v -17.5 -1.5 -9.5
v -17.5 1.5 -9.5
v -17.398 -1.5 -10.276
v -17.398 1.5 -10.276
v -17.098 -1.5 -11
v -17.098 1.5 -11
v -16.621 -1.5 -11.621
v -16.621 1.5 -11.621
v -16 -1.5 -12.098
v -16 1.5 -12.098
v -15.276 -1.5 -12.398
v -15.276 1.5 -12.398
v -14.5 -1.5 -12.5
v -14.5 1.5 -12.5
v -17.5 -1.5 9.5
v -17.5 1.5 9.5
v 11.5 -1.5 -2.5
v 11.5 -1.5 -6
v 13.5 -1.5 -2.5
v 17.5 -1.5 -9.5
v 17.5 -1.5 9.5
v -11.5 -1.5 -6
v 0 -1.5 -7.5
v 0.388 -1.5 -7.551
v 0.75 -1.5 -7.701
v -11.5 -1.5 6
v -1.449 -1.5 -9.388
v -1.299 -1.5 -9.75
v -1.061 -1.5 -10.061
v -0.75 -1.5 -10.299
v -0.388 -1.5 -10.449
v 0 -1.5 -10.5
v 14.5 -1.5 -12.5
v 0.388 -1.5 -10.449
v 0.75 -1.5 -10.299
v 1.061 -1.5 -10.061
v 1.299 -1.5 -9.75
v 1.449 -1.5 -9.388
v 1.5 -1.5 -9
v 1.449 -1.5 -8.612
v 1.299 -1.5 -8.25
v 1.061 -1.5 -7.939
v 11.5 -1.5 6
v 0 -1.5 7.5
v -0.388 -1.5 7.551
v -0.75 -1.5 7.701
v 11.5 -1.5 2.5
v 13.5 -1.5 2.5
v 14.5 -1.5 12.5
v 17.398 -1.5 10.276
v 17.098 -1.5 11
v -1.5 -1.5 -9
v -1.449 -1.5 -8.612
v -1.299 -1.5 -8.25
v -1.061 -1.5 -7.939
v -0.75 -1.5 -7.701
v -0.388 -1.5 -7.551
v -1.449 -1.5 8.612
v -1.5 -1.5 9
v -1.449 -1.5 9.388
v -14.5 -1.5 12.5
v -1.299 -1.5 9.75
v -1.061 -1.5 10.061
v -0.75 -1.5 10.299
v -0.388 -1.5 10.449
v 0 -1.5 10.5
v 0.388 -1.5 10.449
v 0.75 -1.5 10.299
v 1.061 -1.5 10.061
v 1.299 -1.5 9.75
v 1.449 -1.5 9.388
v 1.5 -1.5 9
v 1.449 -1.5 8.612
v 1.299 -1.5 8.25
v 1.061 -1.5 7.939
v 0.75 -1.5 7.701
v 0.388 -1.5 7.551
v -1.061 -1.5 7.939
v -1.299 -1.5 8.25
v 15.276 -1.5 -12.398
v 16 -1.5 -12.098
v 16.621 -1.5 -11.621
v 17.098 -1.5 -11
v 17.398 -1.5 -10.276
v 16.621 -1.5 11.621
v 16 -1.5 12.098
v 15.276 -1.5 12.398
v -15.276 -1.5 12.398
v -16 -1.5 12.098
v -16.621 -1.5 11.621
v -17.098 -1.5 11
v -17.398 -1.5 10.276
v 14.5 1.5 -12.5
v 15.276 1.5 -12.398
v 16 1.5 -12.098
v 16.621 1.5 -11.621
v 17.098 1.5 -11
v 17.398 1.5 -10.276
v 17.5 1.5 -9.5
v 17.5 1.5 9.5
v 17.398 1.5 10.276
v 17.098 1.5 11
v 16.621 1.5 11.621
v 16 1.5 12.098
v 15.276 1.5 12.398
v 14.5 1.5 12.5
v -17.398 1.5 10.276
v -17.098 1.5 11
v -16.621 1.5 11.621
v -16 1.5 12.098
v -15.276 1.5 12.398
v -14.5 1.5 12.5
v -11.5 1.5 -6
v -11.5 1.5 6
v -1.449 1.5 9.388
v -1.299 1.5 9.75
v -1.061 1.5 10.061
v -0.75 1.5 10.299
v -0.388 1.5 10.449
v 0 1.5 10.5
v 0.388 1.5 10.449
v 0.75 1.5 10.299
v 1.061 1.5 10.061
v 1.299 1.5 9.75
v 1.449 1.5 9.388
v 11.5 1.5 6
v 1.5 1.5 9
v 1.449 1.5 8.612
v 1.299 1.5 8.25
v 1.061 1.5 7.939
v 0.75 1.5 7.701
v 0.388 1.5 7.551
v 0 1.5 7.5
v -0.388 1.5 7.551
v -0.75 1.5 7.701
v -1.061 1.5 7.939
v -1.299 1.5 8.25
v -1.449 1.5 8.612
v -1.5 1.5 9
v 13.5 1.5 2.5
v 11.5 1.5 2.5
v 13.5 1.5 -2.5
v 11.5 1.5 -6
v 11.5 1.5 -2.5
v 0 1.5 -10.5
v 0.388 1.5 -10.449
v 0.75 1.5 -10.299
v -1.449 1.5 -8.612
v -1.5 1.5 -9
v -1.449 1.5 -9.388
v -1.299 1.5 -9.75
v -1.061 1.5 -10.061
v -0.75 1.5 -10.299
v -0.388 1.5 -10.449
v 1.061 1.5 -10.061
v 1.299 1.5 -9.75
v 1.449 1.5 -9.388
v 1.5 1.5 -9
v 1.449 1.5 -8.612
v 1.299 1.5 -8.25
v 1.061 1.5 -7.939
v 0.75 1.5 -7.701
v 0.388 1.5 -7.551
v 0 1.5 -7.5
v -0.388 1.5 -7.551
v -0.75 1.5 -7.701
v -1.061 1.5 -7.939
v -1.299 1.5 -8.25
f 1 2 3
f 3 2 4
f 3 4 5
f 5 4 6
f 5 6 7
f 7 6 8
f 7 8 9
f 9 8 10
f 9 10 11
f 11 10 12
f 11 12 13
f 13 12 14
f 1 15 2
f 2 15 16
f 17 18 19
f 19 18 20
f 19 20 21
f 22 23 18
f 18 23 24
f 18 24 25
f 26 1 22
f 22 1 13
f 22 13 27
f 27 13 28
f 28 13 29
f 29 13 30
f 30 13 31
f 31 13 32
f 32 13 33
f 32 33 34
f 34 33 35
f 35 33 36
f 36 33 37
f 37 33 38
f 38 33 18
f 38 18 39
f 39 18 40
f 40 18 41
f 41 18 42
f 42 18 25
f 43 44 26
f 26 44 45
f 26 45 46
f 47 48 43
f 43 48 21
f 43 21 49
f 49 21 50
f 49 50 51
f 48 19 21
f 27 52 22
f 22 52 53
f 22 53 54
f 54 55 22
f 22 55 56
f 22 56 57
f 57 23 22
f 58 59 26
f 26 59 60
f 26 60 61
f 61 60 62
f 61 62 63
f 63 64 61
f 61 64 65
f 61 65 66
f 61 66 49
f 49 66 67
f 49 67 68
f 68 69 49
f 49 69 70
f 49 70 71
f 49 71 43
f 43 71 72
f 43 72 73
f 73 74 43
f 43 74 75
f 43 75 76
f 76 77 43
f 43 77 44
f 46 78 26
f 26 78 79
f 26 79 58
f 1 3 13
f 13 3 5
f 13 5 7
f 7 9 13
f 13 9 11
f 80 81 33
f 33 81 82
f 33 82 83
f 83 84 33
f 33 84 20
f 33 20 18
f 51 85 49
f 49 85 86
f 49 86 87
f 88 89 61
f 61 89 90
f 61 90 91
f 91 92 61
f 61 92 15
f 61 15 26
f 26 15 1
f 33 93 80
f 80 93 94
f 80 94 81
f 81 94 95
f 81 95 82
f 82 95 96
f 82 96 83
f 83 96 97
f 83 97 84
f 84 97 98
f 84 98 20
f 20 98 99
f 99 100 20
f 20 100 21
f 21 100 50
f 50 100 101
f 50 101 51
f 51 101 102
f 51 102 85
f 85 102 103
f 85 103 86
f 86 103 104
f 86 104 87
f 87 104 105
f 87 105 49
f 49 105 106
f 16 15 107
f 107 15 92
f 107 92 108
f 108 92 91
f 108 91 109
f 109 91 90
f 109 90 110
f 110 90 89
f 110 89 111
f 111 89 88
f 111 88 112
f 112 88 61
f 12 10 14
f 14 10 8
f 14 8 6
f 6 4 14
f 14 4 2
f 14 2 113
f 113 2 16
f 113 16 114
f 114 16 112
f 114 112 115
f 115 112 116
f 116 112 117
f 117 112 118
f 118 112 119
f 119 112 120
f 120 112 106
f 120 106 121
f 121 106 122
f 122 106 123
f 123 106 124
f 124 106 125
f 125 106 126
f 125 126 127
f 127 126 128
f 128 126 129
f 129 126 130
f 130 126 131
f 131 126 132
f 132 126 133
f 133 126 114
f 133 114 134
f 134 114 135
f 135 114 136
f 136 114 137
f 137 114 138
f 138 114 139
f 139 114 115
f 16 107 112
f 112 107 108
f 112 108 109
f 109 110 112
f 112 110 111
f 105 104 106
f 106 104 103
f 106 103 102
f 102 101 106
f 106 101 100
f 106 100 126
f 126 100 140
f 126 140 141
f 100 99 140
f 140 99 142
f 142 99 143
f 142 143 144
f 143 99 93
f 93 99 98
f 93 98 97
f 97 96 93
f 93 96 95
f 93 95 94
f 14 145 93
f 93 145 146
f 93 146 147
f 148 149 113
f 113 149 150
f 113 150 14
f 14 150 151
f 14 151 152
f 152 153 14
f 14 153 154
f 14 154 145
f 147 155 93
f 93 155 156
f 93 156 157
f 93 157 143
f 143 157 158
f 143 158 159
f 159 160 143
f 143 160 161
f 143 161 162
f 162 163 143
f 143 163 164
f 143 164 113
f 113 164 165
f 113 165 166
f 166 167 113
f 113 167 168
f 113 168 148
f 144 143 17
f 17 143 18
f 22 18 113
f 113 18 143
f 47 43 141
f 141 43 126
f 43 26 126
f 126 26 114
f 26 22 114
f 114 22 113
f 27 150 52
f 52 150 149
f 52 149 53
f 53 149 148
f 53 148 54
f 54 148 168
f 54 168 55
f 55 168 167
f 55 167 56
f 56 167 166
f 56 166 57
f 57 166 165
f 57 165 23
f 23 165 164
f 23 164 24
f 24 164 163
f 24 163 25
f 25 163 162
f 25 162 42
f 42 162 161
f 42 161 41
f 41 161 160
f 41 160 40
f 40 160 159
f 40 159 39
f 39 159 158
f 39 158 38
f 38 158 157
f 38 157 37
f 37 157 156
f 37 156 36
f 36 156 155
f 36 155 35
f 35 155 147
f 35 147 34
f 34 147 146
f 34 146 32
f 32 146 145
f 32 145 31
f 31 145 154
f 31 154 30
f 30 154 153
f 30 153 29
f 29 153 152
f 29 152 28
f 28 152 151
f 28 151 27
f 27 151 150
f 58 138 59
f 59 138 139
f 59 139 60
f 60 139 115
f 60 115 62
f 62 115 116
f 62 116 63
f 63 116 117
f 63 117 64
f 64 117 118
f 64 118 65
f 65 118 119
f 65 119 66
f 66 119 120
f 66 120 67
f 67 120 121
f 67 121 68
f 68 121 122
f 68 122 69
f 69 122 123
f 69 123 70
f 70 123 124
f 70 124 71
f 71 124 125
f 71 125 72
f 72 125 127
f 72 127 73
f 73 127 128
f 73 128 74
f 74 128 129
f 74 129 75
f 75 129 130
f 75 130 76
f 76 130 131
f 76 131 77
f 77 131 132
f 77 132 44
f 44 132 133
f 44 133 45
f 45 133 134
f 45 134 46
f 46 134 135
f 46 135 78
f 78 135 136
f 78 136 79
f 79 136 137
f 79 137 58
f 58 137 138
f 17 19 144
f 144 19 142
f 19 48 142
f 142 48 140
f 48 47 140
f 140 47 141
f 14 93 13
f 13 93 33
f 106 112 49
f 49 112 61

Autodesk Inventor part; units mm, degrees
ref_plane "YZ Plane" through (0, 0, 0) normal (1, 0, 0) x (0, 1, 0)
ref_plane "XZ Plane" through (0, 0, 0) normal (0, 1, 0) x (-1, 0, 0)
ref_plane "XY Plane" through (0, 0, 0) normal (0, 0, 1) x (1, 0, 0)
sketch "草圖1" plane through (0, 0, 0) normal (0, 1, 0) x (-1, 0, 0)
  line L0 (17.5, 12.5) -> (-17.5, 12.5)
  line L1 (-17.5, 12.5) -> (-17.5, -12.5)
  line L2 (-17.5, -12.5) -> (17.5, -12.5)
  line L3 (17.5, -12.5) -> (17.5, 12.5)
  line L4 (24.5, 0) -> (-24.5, 0) projected
  line L5 (0, -17.5) -> (0, 17.5) projected
  circle A0 centre (0, 9) radius 1.5
  line L6 (11.5, 0) -> (-11.5, 0)
  line L7 (-11.5, 0) -> (-11.5, 6)
  line L8 (-11.5, 6) -> (11.5, 6)
  line L9 (11.5, 6) -> (11.5, 0)
  line L10 (-11.5, 0) -> (-13.5, 0)
  line L11 (-13.5, 0) -> (-13.5, 2.5)
  line L12 (-13.5, 2.5) -> (-11.5, 2.5)
  line L13 (-11.5, 2.5) -> (-11.5, 0)
  circle A1 centre (0, -9) radius 1.5
  line L14 (-11.5, 0) -> (-11.5, -6)
  line L15 (-11.5, -6) -> (11.5, -6)
  line L16 (11.5, -6) -> (11.5, 0)
  line L17 (-13.5, 0) -> (-13.5, -2.5)
  line L18 (-13.5, -2.5) -> (-11.5, -2.5)
  line L19 (-11.5, -2.5) -> (-11.5, 0)
  dimension "d103" = 25
  dimension "d104" = 35
  dimension "d105" = 17.5
  dimension "d106" = 12.5
  dimension "d107" = 3
  dimension "d109" = 6
  dimension "d110" = 6
  dimension "d111" = 23
  dimension "d112" = 2
  dimension "d113" = 2.5
  dimension "d115" = 18
extrude "擠出2" add sketch "草圖1" along normal mid plane 3 contours L3 L4 L9 L8 L5 A0 L0 | L5 A0 L8 L7 L12 L11 L4 L1 L0 | L3 L2 L5 A1 L15 L16 L4 | L4 L17 L18 L14 L15 L5 A1 L2 L1
fillet "圓角2" radius 3 4 edges at (-17.5, 0, 12.5) (17.5, 0, 12.5) (17.5, 0, -12.5) (-17.5, 0, -12.5)
properties part number "板子4"
